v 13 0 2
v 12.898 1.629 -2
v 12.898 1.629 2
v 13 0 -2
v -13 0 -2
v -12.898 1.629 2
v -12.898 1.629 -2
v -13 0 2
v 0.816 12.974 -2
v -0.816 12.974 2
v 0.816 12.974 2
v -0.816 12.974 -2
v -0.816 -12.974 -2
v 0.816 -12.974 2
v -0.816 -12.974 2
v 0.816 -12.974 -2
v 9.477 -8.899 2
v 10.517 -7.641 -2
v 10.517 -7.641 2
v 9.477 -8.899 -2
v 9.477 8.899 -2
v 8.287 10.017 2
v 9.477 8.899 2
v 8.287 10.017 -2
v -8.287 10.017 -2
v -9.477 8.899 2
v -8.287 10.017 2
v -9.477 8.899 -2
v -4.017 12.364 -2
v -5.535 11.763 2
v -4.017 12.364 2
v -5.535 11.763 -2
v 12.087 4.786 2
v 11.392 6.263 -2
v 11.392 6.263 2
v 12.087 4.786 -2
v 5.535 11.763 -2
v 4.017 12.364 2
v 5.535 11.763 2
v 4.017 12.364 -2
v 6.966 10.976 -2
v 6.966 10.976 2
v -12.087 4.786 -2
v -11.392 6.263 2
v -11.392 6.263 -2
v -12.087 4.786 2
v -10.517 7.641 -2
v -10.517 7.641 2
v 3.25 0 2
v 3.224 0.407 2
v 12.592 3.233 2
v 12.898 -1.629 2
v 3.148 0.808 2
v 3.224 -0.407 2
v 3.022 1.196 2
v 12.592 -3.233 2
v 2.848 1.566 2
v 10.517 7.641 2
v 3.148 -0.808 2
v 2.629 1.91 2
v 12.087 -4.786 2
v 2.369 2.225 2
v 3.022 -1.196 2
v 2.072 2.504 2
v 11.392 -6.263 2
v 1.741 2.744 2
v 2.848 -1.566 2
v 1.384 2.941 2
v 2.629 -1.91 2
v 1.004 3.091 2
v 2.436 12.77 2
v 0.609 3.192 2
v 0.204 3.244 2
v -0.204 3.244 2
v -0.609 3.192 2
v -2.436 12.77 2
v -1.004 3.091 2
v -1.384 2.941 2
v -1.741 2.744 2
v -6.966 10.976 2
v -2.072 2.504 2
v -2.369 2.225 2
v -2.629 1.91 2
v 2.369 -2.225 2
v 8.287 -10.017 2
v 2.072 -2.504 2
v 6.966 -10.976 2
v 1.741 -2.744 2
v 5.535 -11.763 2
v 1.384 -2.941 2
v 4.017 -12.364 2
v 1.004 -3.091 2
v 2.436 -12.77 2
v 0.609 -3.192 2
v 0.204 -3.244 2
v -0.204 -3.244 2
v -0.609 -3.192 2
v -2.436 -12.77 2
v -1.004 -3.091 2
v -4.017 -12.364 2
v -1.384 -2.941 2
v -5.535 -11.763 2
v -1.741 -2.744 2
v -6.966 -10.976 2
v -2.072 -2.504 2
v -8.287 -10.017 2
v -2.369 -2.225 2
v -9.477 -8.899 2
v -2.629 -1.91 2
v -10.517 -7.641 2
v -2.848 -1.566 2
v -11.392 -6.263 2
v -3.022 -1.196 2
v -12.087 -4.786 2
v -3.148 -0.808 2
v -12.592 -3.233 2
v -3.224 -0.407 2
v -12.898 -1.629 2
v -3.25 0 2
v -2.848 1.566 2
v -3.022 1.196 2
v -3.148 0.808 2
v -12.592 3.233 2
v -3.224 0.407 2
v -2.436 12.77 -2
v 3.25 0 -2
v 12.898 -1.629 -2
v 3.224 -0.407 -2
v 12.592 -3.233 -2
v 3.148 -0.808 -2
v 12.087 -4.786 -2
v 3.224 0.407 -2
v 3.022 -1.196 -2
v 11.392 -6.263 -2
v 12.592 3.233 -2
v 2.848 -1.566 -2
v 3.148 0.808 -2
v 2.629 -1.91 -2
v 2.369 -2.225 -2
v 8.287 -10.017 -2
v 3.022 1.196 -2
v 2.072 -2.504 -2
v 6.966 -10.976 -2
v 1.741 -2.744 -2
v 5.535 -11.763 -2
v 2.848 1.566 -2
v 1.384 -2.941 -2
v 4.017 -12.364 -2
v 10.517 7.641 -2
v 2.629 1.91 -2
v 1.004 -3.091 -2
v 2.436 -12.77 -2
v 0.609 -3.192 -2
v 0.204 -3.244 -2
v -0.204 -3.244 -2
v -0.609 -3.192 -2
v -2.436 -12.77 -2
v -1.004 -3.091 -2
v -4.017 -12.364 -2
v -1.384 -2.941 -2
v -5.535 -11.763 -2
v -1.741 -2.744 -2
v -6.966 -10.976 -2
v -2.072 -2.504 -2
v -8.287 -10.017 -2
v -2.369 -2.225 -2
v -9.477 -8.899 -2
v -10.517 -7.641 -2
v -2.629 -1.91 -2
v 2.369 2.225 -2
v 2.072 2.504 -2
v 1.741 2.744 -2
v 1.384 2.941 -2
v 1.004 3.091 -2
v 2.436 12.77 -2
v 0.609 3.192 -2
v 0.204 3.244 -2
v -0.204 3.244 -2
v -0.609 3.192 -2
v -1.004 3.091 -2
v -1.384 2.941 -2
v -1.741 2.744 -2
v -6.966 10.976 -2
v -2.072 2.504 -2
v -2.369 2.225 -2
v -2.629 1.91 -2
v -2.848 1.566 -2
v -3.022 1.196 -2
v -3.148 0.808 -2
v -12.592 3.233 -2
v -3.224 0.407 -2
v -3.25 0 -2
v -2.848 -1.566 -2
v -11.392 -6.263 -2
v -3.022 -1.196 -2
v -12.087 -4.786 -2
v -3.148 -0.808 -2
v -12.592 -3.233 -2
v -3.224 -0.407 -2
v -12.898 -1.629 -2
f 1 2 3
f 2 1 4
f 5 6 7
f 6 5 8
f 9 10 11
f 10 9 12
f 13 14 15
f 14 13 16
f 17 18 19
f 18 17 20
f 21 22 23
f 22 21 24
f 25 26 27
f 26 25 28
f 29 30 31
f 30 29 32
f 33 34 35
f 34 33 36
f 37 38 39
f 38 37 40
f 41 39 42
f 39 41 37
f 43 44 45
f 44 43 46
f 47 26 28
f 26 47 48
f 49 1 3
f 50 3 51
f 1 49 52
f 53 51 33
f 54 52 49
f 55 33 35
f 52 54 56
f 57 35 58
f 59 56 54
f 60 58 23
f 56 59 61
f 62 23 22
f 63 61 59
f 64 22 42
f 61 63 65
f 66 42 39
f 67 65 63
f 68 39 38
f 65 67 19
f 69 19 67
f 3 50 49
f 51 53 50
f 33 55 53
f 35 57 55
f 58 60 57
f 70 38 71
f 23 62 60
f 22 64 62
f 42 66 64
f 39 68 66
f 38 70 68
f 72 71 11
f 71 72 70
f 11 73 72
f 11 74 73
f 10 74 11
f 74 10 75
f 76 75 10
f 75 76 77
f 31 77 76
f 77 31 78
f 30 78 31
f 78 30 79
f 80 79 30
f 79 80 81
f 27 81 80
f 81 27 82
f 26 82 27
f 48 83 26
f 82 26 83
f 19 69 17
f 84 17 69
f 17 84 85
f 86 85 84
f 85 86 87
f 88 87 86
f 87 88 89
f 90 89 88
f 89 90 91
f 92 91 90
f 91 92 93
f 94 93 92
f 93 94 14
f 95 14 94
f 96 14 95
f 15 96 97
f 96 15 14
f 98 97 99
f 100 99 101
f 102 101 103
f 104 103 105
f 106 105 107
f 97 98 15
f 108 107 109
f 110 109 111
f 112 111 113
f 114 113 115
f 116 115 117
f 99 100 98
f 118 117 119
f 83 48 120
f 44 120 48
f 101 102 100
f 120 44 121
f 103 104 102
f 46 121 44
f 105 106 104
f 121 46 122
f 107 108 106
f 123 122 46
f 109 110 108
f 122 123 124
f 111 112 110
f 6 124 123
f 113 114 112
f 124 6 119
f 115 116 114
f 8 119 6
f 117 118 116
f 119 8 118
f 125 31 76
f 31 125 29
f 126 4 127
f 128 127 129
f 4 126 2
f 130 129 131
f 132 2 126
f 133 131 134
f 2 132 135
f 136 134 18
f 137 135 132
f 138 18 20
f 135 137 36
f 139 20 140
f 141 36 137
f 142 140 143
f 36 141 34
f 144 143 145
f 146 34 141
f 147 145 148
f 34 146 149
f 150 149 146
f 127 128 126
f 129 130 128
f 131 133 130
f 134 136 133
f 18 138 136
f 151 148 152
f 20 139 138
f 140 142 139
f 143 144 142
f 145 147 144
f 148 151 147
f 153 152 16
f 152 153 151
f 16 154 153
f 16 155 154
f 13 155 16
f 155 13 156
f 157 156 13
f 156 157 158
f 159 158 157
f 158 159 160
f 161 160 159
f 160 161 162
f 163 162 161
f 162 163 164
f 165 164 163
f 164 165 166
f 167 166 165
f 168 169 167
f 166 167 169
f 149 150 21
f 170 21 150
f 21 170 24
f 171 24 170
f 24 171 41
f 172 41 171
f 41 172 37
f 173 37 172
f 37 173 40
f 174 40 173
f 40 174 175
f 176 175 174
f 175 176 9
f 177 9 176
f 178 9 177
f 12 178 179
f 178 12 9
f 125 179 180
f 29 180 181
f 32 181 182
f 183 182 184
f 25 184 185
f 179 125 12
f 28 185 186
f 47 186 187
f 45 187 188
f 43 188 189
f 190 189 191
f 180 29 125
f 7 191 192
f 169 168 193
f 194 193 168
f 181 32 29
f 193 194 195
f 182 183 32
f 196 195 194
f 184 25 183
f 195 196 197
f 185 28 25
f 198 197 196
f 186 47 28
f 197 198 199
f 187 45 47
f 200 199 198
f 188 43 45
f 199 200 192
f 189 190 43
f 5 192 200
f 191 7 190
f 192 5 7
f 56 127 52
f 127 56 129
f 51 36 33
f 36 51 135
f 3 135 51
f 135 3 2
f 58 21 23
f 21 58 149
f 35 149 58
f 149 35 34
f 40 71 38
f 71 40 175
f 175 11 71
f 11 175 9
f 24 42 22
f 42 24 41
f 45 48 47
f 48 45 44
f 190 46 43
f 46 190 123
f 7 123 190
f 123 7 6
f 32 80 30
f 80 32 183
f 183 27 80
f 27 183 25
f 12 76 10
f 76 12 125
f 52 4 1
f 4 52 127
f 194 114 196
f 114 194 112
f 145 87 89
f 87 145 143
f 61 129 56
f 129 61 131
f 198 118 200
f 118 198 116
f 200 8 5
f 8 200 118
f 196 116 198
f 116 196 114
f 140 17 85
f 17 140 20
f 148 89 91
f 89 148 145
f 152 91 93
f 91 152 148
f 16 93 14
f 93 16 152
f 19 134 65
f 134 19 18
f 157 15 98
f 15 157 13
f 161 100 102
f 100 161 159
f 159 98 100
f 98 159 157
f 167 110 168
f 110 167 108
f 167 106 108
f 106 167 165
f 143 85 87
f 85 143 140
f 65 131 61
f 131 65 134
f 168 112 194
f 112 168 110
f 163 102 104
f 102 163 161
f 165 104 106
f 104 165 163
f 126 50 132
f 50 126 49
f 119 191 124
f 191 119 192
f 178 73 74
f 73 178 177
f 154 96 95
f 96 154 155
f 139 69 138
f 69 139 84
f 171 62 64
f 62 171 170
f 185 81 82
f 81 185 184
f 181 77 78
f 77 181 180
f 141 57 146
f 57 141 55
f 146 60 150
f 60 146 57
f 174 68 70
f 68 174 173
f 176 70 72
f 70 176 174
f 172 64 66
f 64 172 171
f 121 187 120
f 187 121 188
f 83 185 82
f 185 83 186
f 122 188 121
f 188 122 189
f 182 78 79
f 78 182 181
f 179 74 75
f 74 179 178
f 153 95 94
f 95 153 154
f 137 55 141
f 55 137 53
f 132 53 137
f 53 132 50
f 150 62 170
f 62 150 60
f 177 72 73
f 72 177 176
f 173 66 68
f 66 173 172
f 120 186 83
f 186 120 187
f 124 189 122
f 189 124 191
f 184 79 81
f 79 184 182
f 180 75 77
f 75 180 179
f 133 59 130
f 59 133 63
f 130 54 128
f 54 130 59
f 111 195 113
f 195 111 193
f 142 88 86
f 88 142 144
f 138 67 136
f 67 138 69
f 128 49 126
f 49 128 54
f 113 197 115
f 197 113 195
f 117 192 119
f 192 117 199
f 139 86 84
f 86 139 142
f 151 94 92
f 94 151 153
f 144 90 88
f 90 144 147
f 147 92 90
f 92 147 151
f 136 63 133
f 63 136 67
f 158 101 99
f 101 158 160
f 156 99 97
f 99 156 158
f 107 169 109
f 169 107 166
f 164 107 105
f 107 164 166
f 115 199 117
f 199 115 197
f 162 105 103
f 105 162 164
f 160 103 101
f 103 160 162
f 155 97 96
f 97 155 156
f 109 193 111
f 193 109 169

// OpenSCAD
$fn = 50;


difference() {
	union() {
		translate(v = [0, 0, -2.0000000000]) {
			cylinder(h = 4, r = 13.0000000000);
		}
	}
	union() {
		translate(v = [0, 0, -100.0000000000]) {
			cylinder(h = 200, r = 3.2500000000);
		}
	}
}
